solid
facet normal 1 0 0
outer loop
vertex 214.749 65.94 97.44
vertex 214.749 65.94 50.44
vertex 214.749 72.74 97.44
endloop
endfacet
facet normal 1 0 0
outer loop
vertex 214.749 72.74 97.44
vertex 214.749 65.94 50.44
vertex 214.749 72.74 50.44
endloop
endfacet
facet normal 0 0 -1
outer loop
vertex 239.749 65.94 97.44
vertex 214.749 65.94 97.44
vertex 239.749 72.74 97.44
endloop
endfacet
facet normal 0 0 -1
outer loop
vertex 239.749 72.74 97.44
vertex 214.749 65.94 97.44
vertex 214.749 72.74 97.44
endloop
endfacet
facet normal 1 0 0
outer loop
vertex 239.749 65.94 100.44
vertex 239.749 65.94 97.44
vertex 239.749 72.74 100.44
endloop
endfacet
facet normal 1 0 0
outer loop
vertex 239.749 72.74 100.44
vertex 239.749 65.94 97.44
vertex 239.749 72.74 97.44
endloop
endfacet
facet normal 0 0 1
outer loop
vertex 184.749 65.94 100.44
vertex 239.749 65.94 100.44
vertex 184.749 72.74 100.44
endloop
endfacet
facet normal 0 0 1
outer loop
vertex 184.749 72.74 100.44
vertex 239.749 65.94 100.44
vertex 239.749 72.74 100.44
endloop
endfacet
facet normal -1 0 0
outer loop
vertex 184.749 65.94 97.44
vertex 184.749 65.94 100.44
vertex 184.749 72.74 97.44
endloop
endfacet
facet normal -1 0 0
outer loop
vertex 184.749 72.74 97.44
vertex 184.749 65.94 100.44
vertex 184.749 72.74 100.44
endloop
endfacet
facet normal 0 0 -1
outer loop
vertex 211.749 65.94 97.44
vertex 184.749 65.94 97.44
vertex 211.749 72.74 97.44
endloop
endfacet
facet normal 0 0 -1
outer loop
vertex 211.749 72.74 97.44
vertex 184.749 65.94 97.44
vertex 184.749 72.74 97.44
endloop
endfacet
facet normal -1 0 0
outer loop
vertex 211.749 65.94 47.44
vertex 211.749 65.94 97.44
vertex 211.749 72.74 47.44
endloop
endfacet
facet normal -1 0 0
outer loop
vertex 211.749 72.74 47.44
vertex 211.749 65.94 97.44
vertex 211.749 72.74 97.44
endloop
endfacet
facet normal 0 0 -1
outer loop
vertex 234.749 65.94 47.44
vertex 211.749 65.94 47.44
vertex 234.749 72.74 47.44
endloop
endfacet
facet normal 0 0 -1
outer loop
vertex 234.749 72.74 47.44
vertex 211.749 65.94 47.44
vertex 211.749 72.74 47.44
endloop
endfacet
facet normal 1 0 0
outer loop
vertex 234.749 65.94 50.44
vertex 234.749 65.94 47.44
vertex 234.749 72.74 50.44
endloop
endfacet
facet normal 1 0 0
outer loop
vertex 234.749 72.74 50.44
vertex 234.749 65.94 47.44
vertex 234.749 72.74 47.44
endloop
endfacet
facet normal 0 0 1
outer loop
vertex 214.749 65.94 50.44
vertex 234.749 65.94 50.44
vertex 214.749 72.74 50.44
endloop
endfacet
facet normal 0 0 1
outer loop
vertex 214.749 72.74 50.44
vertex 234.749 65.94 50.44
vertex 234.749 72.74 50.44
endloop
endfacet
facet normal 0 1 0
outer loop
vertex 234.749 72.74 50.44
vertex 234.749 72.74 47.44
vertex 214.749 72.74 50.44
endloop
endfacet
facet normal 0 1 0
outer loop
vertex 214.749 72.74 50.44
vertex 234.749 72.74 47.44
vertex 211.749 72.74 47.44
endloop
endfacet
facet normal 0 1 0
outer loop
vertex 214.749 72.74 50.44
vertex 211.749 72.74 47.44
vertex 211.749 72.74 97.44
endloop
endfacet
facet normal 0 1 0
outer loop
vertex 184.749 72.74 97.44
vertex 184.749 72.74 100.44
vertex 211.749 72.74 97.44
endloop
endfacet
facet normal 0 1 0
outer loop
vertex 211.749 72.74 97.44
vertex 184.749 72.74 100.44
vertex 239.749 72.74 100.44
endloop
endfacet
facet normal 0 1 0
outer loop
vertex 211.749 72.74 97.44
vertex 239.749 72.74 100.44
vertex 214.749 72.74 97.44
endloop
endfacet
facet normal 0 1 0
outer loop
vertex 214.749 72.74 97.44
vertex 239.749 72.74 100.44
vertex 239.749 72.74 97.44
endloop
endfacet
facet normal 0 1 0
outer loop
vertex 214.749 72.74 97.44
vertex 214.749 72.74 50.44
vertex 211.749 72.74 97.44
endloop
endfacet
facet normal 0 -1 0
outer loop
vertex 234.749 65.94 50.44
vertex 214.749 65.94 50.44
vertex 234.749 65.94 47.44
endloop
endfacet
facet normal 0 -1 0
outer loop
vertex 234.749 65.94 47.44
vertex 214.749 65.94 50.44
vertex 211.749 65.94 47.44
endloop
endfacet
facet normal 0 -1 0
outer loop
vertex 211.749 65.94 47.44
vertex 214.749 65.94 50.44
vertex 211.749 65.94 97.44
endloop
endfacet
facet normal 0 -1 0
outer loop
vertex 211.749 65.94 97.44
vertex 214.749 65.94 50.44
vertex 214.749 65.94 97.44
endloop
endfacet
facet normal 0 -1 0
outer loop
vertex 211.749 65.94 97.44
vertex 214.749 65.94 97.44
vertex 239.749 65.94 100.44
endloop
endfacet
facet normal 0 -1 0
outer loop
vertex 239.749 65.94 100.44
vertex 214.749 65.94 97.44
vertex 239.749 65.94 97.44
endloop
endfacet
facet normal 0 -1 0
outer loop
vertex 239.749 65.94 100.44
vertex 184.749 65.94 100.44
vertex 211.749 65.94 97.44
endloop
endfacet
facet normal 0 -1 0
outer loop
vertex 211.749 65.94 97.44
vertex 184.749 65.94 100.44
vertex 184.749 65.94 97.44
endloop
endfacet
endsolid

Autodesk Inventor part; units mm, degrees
ref_plane "YZ Plane" through (0, 0, 0) normal (1, 0, 0) x (0, 1, 0)
ref_plane "XZ Plane" through (0, 0, 0) normal (0, 1, 0) x (-1, 0, 0)
ref_plane "XY Plane" through (0, 0, 0) normal (0, 0, 1) x (1, 0, 0)
ref_plane "Work Plane1" through (182.8917, 65.9403, 21.7484) normal (0, 1, 0) x (0, 0, -1)
sketch "Sketch1" plane through (182.8917, 65.9403, 21.7484) normal (0, 1, 0) x (0, 0, -1)
  line L0 (-78.6913, -1.8576) -> (-78.6913, -56.8576)
  line L1 (-78.6913, -56.8576) -> (-75.6913, -56.8576)
  line L2 (-75.6913, -56.8576) -> (-75.6913, -31.8576)
  line L3 (-75.6913, -31.8576) -> (-28.6913, -31.8576)
  line L4 (-28.6913, -31.8576) -> (-28.6913, -28.8576)
  line L5 (-28.6913, -31.8576) -> (-28.6913, -51.8576)
  line L6 (-28.6913, -51.8576) -> (-25.6913, -51.8576)
  line L7 (-25.6913, -51.8576) -> (-25.6913, -28.8576)
  line L8 (-25.6913, -28.8576) -> (-75.6913, -28.8576)
  line L9 (-75.6913, -28.8576) -> (-75.6913, -1.8576)
  line L10 (-75.6913, -1.8576) -> (-78.6913, -1.8576)
  point P0 (21.7484, 182.8917)
  dimension "d0" = 55
  dimension "d1" = 3
  dimension "d2" = 25
  dimension "d3" = 47
  dimension "d4" = 3
  dimension "d5" = 3
  dimension "d6" = 23
extrude "Extrusion1" add sketch "Sketch1" along normal blind 6.8
properties part number "battery_holder_3DPrint"
